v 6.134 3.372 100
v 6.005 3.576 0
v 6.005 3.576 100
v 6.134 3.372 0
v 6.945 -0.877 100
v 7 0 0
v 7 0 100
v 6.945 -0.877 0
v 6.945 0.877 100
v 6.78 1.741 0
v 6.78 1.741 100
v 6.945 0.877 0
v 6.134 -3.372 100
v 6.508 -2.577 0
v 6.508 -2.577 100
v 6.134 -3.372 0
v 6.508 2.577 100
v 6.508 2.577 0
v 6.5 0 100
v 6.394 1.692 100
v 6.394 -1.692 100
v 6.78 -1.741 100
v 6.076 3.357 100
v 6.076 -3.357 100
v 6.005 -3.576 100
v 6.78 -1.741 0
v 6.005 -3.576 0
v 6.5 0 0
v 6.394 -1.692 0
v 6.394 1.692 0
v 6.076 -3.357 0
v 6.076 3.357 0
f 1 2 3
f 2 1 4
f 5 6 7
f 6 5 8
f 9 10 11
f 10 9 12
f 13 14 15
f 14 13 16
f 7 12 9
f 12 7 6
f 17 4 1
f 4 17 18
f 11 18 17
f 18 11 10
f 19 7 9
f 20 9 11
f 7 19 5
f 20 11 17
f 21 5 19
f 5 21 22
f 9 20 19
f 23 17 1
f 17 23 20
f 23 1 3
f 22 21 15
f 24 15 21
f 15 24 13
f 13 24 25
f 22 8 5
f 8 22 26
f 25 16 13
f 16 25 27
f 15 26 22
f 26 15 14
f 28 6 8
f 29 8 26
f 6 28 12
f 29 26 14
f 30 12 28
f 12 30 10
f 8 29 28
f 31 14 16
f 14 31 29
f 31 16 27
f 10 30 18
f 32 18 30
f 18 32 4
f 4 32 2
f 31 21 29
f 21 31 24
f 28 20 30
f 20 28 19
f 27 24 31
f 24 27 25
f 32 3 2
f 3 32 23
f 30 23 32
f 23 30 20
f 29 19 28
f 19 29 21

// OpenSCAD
$fn = 50;


difference() {
	union() {
		cylinder(h = 100, r = 7.0000000000);
		translate(v = [-10.0000000000, 0, 0]) {
			cylinder(h = 100, r = 7.0000000000);
		}
	}
	union() {
		cylinder(h = 100, r = 3.2500000000);
		cylinder(h = 100, r = 1.8000000000);
		cylinder(h = 100, r = 1.8000000000);
		cylinder(h = 100, r = 1.8000000000);
		translate(v = [-14.5000000000, 0, 0]) {
			hull() {
				translate(v = [-3.7500000000, 0.0000000000, 0]) {
					cylinder(h = 100, r = 7.5000000000);
				}
				translate(v = [3.7500000000, 0.0000000000, 0]) {
					cylinder(h = 100, r = 7.5000000000);
				}
				translate(v = [-3.7500000000, -0.0000000000, 0]) {
					cylinder(h = 100, r = 7.5000000000);
				}
				translate(v = [3.7500000000, -0.0000000000, 0]) {
					cylinder(h = 100, r = 7.5000000000);
				}
			}
		}
		translate(v = [-7.0000000000, 0, 0.0000000000]) {
			cylinder(h = 100, r = 13.5000000000);
		}
	}
}
